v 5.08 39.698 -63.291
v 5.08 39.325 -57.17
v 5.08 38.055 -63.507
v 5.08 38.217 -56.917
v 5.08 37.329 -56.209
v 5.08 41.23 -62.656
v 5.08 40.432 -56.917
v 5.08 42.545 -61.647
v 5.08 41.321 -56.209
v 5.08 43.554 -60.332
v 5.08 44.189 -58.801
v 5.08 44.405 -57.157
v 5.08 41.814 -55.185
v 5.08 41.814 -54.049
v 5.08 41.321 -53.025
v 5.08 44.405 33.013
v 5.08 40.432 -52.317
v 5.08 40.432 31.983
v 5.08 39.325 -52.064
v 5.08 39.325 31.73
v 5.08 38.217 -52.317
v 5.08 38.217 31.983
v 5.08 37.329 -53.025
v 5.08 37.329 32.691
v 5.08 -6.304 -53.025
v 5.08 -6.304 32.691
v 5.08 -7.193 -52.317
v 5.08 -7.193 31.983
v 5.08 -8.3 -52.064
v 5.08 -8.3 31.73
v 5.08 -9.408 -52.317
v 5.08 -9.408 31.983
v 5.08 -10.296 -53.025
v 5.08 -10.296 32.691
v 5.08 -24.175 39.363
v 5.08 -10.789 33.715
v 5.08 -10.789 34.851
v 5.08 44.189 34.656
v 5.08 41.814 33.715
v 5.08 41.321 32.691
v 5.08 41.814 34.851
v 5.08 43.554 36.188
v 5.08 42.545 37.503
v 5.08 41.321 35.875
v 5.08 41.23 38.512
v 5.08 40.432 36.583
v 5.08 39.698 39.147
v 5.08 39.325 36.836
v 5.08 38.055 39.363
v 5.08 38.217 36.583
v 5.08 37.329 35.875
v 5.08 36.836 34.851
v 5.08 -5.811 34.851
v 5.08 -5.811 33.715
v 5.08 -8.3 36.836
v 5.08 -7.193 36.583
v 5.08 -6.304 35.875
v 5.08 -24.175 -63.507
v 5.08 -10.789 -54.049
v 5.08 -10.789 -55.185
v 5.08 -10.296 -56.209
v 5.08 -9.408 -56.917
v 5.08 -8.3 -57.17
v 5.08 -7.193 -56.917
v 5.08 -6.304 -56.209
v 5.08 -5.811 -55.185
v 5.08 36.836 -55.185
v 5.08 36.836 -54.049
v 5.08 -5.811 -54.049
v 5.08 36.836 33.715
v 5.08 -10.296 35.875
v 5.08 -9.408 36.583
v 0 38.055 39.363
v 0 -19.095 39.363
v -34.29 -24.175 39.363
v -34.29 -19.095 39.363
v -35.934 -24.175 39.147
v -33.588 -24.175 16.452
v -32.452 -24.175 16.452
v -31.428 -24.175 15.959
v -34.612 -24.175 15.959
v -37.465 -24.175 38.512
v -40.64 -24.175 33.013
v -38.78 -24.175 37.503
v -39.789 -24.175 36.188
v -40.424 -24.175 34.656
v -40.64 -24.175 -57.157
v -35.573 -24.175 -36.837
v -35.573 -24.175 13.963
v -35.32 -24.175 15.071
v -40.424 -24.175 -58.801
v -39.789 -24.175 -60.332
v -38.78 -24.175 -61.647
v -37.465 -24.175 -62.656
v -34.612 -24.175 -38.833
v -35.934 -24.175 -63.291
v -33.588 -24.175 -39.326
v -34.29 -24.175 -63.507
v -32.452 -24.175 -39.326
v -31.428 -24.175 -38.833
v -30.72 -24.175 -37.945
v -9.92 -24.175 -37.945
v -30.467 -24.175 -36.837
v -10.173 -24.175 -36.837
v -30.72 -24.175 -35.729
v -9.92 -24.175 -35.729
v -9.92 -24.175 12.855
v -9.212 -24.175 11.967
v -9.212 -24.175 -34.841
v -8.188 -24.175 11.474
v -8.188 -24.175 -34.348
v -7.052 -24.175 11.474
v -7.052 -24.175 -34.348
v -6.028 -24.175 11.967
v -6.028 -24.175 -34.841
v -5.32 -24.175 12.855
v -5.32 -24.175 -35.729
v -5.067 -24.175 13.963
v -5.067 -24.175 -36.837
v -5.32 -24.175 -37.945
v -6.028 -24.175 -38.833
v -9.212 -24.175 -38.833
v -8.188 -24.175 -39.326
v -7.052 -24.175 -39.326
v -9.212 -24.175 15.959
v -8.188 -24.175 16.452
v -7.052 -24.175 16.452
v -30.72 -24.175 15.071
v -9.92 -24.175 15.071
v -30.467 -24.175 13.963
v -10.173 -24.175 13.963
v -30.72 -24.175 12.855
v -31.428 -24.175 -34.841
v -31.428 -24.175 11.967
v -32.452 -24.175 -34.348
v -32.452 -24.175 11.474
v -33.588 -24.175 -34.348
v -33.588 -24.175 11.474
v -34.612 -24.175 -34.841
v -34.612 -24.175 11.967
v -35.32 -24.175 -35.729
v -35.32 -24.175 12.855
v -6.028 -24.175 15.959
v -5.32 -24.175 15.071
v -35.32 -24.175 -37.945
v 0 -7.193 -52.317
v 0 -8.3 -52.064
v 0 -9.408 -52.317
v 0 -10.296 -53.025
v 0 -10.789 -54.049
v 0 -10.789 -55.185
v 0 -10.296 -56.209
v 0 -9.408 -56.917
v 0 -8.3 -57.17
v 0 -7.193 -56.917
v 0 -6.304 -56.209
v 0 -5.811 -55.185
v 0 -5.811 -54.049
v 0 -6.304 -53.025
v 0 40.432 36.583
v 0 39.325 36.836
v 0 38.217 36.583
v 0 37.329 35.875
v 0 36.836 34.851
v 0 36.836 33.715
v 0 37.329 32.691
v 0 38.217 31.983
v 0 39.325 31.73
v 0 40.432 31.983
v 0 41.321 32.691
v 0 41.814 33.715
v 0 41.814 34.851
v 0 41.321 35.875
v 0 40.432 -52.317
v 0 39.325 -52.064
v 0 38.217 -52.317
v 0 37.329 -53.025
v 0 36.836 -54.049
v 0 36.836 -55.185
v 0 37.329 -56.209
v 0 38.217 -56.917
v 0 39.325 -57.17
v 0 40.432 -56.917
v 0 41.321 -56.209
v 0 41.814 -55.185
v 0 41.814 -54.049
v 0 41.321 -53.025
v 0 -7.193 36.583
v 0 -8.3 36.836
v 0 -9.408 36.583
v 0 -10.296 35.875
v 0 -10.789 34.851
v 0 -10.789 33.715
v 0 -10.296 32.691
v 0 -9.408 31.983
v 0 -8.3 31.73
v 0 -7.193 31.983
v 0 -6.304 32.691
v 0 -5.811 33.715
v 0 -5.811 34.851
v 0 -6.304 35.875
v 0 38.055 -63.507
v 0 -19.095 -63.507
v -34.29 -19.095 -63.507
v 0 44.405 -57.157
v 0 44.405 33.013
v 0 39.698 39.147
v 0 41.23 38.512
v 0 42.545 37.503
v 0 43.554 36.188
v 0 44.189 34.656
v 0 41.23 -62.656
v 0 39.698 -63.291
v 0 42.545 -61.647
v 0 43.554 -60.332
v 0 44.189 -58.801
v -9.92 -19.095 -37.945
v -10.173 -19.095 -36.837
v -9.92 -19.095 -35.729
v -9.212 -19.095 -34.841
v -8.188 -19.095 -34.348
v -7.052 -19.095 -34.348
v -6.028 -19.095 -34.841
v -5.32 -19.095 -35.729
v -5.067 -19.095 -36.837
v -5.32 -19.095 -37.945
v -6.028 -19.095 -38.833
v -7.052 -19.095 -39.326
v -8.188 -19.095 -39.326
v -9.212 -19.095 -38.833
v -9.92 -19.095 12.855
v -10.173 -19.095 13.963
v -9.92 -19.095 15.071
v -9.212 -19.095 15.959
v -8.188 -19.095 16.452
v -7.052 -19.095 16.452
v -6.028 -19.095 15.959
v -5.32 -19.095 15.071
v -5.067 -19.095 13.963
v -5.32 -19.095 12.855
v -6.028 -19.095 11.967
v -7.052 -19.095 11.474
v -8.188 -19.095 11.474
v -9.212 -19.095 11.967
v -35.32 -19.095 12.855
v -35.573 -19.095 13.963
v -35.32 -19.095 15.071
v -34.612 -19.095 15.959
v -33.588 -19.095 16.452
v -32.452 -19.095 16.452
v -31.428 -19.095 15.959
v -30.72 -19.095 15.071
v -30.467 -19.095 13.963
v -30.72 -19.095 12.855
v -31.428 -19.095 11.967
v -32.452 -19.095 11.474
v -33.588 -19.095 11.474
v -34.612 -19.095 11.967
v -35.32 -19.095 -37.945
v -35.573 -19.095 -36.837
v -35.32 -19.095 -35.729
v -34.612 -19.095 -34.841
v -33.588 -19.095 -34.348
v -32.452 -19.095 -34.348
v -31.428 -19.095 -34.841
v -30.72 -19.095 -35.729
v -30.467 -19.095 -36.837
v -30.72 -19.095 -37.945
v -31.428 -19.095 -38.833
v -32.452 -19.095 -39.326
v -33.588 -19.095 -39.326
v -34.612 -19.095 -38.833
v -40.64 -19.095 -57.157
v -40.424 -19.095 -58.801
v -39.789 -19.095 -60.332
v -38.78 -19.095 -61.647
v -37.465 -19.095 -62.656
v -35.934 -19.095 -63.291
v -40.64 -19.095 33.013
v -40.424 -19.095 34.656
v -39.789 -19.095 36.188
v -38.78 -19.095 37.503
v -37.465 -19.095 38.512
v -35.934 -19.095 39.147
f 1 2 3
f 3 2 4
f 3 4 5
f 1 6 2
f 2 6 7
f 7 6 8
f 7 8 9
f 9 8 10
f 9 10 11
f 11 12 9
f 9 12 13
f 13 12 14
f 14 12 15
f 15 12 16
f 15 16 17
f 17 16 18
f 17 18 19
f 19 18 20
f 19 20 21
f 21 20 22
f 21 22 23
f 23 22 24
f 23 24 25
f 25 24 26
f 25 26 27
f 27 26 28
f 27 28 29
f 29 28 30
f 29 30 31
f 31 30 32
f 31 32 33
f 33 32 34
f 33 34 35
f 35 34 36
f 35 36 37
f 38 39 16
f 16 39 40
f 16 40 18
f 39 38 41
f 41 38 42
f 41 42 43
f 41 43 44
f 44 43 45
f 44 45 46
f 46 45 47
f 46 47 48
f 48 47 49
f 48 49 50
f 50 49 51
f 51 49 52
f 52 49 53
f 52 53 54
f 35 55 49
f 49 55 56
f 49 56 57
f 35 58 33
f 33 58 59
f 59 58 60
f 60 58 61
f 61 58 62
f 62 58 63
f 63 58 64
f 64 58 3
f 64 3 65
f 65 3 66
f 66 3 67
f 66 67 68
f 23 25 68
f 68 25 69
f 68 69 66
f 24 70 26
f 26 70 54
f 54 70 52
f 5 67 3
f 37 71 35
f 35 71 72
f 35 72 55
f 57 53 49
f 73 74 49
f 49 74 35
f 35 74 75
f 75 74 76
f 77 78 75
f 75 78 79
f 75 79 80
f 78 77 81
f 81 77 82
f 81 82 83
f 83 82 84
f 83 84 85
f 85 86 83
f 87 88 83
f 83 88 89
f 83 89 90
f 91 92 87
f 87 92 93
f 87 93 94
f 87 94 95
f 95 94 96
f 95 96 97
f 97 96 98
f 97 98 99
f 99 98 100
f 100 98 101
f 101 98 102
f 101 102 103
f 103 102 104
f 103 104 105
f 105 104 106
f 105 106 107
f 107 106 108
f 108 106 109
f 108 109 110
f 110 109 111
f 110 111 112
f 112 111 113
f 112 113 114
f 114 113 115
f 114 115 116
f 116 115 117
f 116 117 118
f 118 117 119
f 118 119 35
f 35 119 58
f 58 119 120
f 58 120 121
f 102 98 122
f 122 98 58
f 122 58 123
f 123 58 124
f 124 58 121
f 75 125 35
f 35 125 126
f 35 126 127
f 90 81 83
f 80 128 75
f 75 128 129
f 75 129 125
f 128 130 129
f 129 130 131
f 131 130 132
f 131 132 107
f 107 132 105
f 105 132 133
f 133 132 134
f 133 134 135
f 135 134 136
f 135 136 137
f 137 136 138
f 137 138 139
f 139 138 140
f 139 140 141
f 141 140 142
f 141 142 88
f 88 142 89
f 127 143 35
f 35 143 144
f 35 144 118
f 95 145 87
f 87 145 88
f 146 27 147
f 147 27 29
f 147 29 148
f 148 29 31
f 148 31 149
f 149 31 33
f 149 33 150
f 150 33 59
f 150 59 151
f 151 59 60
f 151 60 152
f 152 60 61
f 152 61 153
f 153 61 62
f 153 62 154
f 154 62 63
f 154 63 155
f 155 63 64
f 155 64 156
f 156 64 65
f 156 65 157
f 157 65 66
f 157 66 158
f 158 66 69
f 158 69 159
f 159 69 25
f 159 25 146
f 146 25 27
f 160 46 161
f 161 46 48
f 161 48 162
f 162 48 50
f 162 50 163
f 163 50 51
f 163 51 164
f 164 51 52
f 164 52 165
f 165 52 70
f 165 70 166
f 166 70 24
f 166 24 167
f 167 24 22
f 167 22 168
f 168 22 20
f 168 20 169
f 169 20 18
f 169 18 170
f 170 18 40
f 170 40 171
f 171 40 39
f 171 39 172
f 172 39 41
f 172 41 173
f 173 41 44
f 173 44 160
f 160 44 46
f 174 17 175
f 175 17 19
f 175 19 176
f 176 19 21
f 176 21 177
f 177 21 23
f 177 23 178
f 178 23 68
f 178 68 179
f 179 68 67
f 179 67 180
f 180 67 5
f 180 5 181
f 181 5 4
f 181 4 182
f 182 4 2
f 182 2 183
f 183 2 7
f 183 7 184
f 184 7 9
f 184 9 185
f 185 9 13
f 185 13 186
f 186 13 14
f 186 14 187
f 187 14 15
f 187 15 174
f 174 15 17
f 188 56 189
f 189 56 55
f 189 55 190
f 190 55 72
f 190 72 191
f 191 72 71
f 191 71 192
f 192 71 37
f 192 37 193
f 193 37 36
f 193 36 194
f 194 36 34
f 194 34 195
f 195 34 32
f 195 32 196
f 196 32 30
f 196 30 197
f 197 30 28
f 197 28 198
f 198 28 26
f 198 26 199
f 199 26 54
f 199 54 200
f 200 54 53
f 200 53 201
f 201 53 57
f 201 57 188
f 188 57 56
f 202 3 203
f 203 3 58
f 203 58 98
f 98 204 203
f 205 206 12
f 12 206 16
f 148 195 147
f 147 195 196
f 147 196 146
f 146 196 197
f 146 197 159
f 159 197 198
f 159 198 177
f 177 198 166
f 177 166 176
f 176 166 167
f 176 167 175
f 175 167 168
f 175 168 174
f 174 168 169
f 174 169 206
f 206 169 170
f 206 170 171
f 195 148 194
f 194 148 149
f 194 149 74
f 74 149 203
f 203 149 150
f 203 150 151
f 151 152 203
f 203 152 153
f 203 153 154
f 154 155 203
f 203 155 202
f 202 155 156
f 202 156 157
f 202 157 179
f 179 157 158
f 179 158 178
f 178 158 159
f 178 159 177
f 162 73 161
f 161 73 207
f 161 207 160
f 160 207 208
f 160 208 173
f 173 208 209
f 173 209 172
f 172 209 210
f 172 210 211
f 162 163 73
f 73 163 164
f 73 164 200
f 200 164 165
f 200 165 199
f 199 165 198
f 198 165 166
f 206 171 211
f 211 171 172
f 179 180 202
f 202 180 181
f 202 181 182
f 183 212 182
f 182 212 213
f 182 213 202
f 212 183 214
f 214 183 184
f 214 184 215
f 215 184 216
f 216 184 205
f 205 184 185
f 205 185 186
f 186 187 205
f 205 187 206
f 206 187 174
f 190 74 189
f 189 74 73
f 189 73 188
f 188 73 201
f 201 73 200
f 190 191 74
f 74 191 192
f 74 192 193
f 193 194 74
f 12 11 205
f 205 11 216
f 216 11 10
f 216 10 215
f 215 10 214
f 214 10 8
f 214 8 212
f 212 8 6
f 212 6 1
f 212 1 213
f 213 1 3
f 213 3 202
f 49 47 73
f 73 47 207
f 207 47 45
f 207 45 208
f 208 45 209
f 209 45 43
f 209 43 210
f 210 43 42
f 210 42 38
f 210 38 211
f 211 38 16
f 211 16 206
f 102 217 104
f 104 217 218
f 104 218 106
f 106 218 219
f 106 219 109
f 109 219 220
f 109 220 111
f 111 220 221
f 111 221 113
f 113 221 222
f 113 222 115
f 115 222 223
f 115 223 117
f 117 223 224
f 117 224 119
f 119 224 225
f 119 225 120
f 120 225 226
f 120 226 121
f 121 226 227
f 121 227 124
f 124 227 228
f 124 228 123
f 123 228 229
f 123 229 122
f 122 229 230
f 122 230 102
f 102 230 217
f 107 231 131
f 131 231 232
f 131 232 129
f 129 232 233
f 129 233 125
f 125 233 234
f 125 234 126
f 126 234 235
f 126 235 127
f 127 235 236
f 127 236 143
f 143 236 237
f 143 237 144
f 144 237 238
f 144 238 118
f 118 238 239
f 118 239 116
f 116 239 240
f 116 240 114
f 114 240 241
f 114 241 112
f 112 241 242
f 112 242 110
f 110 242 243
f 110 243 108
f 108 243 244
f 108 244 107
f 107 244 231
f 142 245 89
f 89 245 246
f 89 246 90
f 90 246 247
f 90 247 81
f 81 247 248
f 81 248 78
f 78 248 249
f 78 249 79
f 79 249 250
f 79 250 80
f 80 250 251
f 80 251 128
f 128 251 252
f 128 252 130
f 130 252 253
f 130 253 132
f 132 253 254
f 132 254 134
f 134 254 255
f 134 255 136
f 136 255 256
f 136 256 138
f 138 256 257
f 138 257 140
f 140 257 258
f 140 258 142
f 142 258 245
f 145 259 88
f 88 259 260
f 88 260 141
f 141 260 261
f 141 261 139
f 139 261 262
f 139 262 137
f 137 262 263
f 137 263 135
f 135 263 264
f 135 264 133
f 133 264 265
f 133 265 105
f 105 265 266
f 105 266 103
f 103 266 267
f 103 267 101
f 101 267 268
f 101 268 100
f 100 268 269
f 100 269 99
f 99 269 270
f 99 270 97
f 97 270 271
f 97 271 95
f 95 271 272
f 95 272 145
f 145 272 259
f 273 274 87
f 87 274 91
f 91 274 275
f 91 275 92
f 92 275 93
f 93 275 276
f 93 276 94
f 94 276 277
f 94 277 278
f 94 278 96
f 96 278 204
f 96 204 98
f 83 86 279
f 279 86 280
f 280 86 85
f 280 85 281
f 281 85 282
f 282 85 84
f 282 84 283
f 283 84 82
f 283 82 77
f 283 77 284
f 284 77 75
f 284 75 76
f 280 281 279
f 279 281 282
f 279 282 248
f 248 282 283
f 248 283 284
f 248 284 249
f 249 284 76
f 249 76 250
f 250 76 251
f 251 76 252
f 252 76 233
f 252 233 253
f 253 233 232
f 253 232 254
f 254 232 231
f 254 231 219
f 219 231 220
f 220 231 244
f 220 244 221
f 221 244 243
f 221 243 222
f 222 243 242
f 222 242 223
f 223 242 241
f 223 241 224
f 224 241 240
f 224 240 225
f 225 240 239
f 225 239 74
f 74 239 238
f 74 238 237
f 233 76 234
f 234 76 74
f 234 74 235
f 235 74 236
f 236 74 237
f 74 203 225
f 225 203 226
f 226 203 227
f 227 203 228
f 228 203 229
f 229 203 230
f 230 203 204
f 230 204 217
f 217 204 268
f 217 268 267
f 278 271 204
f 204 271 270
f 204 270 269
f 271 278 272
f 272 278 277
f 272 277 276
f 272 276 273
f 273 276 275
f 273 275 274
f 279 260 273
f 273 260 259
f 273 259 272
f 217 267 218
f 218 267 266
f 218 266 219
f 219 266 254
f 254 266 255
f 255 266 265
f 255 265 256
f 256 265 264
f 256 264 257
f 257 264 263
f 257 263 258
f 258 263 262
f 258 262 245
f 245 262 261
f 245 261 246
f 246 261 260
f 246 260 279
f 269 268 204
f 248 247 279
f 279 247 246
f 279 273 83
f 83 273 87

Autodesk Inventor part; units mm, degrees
ref_plane "YZ Plane" through (0, 0, 0) normal (1, 0, 0) x (0, 1, 0)
ref_plane "XZ Plane" through (0, 0, 0) normal (0, 1, 0) x (-1, 0, 0)
ref_plane "XY Plane" through (0, 0, 0) normal (0, 0, 1) x (1, 0, 0)
sketch "Sketch1" plane through (0, 0, 0) normal (1, 0, 0) x (0, 1, 0)
  line L0 (44.4049, 39.363) -> (-19.0951, 39.363)
  line L1 (-19.0951, 39.363) -> (-19.0951, -63.507)
  line L2 (-19.0951, -63.507) -> (44.4049, -63.507)
  line L3 (44.4049, -63.507) -> (44.4049, 39.363)
  point P0 (0, 0)
  dimension "d0" = 102.87
  dimension "d1" = 63.5
extrude "Extrusion1" add sketch "Sketch1" along normal blind 5.08
sketch "Sketch2" plane through (5.08, 0, 0) normal (1, 0, 0) x (0, 0, -1)
  line L0 (63.507, 44.4049) -> (-39.363, 44.4049) projected
  line L1 (-39.363, 44.4049) -> (-39.363, -19.0951) projected
  point P0 (0, 0)
  point P1 (-34.283, 39.3249)
  point P2 (54.617, 39.3249)
  point P3 (54.617, -8.3001)
  point P4 (-34.283, -8.3001)
  dimension "d4" = 0
  dimension "d5" = 0
  dimension "d6" = 0
  dimension "d7" = 0
  dimension "d8" = 88.9
  dimension "d9" = 5.08
  dimension "d10" = 5.08
  dimension "d11" = 47.625
hole "Hole1" at (5.08, 39.3249, 34.283) at (5.08, 39.3249, -54.617) at (5.08, -8.3001, -54.617) at (5.08, -8.3001, 34.283) direction (-1, 0, 0) diameter 5.1054 end through all clearance for "Flat Head Machine Screw (82)" size "#10" standard "Ansi Unified Screw Threads"
sketch "Sketch3" plane through (0, -19.0951, -63.507) normal (0, -1, 0) x (1, 0, 0)
  line L0 (-45.72, 0) -> (5.08, 0)
  line L1 (5.08, 0) -> (5.08, 102.87)
  line L2 (5.08, 102.87) -> (-45.72, 102.87)
  line L3 (-45.72, 102.87) -> (-45.72, 0)
  line L4 (5.08, 102.87) -> (5.08, 0) projected
  line L5 (0, 0) -> (5.08, 0) projected
  line L6 (0, 102.87) -> (5.08, 102.87) projected
  point P0 (0, 63.507)
  dimension "d19" = 0
  dimension "d20" = 0
  dimension "d21" = 0
  dimension "d22" = 50.8
extrude "Extrusion2" add sketch "Sketch3" along normal blind 5.08
sketch "Sketch4" plane through (0, -19.0951, -63.507) normal (0, 1, 0) x (1, 0, 0)
  line L0 (0, -102.87) -> (-45.72, -102.87) projected
  line L1 (-45.72, 0) -> (0, 0) projected
  line L2 (5.08, 0) -> (5.08, -102.87) projected
  point P0 (0, -63.507)
  point P1 (-7.62, -77.47)
  point P2 (-33.02, -77.47)
  point P3 (-33.02, -26.67)
  point P4 (-7.62, -26.67)
  dimension "d25" = 0
  dimension "d26" = 0
  dimension "d27" = 0
  dimension "d28" = 0
  dimension "d29" = 25.4
  dimension "d30" = 50.8
  dimension "d31" = 25.4
  dimension "d32" = 26.67
  dimension "d33" = 12.7
hole "Hole2" at (-7.62, -19.0951, 13.963) at (-33.02, -19.0951, 13.963) at (-33.02, -19.0951, -36.837) at (-7.62, -19.0951, -36.837) direction (0, -1, 0) diameter 5.1054 end through all clearance for "Flat Head Machine Screw (82)" size "#10" standard "Ansi Unified Screw Threads"
sketch "Sketch5" plane through (0, -24.1751, -63.507) normal (0, -1, 0) x (1, 0, 0)
  line L0 (-91.5665, 115.4463) -> (-40.64, 115.4463)
  line L1 (-40.64, 115.4463) -> (-40.64, -11.0997)
  line L2 (-40.64, -11.0997) -> (-91.5665, -11.0997)
  line L3 (-91.5665, -11.0997) -> (-91.5665, 115.4463)
  line L4 (-45.72, 102.87) -> (-45.72, 0) projected
  point P0 (0, 63.507)
  dimension "d41" = 5.08
extrude "Extrusion3" cut sketch "Sketch5" against normal blind 25.4
fillet "Fillet1" radius 6.35 4 edges at (-40.64, -21.6351, -63.507) (-40.64, -21.6351, 39.363) (2.54, 44.4049, 39.363) (2.54, 44.4049, -63.507)
properties part number "LimeLight90"
